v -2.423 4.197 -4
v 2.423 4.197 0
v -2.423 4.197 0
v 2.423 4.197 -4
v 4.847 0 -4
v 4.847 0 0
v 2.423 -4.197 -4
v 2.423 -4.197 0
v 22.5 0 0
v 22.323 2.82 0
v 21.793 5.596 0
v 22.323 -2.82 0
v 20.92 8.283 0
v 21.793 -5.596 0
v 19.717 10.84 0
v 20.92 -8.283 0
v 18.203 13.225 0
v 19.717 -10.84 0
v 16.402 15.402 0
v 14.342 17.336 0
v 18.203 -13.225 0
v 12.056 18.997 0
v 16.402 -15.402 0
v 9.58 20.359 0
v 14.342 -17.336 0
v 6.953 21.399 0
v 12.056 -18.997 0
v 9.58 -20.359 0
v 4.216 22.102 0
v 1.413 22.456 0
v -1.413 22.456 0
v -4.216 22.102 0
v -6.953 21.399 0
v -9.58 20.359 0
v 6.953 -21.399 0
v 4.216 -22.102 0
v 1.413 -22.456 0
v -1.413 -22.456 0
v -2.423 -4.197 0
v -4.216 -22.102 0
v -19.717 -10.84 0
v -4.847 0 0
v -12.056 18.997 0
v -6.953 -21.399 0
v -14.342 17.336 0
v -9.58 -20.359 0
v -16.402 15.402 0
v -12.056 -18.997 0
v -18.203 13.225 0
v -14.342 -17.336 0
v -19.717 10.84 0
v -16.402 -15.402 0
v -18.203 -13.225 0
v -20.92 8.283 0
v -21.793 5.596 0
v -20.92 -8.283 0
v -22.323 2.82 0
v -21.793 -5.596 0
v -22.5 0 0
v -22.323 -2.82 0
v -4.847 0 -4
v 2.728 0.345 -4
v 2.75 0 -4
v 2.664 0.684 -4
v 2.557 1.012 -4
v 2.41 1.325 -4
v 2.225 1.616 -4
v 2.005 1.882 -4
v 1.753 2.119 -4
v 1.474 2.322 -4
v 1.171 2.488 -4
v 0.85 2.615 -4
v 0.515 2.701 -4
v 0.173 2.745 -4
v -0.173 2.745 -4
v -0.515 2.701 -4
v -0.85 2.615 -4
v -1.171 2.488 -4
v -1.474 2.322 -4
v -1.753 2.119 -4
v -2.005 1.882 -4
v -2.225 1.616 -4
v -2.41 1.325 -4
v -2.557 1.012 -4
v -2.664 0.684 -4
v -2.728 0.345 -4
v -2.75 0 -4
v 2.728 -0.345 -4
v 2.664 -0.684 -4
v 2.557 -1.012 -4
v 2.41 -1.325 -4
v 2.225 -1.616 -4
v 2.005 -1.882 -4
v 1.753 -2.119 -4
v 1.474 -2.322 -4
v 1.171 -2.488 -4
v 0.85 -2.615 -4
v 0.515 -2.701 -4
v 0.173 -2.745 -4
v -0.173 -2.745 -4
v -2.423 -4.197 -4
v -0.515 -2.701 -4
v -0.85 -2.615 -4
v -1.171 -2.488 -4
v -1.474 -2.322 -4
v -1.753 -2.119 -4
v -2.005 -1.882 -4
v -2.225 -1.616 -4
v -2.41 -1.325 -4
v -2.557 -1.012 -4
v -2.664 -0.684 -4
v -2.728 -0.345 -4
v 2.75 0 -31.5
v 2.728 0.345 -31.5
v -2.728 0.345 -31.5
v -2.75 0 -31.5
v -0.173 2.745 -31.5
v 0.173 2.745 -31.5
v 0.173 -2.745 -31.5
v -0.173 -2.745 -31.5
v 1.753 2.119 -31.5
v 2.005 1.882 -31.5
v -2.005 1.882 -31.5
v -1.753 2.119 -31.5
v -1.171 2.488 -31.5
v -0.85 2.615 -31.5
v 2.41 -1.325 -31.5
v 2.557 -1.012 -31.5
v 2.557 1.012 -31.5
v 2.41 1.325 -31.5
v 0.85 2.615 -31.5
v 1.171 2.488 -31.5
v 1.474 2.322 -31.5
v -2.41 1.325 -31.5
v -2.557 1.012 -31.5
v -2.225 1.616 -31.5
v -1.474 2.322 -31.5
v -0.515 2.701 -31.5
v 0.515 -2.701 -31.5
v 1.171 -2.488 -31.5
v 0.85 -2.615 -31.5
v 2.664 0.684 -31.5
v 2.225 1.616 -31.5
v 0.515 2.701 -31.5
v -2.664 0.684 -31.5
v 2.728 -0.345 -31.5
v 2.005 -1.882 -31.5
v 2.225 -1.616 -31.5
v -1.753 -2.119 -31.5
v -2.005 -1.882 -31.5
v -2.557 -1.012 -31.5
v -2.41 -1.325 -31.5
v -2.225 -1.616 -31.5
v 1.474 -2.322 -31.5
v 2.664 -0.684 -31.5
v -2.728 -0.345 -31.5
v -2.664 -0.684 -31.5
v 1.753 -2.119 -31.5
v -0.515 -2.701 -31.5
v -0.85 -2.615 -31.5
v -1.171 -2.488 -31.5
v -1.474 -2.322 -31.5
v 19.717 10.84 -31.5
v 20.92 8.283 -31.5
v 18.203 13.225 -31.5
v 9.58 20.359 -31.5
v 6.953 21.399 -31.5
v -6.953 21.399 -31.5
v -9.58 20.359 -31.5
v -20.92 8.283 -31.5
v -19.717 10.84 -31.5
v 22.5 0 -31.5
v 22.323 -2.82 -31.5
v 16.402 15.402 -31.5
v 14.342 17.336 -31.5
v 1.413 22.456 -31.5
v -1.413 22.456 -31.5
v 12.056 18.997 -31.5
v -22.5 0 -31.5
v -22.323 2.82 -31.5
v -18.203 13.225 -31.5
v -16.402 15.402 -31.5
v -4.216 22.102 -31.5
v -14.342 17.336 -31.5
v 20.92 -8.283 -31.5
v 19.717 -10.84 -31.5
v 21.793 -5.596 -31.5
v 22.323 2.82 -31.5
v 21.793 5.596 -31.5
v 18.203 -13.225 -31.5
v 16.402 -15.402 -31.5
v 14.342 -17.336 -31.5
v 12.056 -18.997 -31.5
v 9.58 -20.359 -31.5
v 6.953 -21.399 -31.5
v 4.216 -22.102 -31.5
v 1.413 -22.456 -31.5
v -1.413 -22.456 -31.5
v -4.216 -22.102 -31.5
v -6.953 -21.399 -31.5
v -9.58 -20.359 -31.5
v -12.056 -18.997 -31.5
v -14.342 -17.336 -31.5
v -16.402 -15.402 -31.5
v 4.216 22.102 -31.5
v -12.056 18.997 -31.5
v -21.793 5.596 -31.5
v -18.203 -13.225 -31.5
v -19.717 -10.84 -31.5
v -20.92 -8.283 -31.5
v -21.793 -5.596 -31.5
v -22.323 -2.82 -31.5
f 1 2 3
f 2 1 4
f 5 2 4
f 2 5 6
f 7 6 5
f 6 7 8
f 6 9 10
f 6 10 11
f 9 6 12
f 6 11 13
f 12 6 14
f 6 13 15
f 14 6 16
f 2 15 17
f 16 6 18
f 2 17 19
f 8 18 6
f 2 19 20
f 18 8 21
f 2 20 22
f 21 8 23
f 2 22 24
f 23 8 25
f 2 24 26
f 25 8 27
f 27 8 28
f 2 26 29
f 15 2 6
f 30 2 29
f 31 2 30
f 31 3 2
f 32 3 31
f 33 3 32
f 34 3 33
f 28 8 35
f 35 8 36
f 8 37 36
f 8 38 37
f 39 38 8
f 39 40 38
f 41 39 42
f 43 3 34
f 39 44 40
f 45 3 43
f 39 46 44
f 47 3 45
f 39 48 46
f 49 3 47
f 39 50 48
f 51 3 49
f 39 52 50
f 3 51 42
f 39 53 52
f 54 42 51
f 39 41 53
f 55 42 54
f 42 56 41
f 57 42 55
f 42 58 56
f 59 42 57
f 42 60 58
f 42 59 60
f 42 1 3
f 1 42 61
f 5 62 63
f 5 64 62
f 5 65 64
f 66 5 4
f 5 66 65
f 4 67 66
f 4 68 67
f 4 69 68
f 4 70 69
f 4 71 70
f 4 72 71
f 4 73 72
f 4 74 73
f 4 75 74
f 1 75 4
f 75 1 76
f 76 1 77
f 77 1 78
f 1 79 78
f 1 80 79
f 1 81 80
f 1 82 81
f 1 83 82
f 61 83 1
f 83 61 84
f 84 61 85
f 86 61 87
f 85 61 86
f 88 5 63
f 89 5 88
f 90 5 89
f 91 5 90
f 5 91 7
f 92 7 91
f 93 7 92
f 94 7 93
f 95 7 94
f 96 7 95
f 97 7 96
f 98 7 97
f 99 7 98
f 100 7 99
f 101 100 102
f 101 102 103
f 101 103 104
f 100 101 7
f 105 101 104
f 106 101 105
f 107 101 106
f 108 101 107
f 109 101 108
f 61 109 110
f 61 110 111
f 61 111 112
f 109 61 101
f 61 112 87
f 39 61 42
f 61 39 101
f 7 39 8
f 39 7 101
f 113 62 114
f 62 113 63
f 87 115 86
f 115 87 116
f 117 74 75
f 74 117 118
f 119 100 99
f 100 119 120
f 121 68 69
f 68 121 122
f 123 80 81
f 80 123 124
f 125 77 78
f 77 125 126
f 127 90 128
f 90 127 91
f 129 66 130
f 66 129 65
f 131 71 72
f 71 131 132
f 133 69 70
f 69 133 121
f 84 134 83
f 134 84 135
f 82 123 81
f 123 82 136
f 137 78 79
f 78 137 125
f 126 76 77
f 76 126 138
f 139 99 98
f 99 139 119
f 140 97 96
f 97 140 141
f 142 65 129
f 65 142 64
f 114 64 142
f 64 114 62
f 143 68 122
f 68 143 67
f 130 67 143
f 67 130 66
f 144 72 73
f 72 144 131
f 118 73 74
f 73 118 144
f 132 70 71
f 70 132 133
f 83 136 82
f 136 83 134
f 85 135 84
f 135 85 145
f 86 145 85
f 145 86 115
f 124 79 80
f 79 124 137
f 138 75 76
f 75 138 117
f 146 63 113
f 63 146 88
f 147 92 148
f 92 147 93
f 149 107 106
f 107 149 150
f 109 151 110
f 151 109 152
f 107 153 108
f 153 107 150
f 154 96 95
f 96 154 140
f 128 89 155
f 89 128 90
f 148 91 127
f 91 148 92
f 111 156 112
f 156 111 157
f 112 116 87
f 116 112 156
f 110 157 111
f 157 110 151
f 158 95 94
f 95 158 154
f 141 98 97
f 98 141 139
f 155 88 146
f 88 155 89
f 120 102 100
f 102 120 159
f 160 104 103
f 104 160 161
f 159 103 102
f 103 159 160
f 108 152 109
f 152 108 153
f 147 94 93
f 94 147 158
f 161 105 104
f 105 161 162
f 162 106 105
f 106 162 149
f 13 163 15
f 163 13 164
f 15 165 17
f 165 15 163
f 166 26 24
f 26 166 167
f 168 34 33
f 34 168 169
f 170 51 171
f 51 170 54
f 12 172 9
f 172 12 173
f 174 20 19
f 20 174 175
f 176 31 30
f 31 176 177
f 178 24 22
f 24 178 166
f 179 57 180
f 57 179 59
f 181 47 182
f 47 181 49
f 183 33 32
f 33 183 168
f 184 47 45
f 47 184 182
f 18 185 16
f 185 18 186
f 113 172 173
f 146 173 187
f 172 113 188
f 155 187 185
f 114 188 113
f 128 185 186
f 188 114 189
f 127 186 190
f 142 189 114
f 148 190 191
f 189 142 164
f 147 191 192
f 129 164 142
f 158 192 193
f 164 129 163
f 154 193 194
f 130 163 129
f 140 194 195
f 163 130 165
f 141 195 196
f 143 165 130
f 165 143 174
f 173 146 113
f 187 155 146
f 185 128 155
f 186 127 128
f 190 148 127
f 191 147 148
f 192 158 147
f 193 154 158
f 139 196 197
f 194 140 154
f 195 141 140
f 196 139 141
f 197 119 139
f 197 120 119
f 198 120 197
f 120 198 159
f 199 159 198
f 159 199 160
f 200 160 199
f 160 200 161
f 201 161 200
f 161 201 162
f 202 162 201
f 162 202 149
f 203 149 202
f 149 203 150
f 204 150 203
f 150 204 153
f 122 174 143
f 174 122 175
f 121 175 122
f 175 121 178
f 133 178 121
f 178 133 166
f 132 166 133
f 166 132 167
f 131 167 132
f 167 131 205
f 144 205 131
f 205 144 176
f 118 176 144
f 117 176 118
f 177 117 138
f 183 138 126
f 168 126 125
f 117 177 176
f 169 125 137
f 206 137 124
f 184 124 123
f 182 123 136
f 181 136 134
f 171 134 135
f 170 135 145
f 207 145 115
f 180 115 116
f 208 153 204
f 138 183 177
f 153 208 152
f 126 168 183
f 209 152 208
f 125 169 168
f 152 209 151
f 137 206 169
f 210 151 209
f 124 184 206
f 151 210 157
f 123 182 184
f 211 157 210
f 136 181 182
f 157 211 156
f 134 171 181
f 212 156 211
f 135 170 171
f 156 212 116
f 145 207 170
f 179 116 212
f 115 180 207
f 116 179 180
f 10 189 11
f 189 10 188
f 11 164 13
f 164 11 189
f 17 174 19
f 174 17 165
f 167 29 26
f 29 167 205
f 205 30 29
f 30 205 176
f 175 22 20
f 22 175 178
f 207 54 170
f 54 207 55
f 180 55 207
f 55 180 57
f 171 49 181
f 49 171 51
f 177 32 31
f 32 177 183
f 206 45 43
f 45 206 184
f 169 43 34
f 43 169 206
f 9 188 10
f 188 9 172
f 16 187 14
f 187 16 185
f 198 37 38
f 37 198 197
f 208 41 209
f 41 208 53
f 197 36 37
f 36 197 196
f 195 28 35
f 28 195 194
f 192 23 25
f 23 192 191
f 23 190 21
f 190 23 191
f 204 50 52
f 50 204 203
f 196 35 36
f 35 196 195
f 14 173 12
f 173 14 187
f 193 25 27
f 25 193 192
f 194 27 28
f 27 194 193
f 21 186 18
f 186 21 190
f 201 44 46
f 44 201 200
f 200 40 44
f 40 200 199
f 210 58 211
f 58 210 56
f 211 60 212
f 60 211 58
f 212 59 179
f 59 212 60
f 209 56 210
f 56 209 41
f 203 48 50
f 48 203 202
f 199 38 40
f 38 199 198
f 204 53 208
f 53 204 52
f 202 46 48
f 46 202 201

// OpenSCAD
$fn = 50;

difference() {
	union() {
		translate(v = [0, 0, -31.5]) {
			cylinder(h = 31.5, r = 22.5);
		}
	}
	union() {
		translate(v = [0, 0, 0]) {
			rotate(a = [0, 0, 0]) {
				difference() {
					union() {
						translate(v = [0, 0, -4]) {
							linear_extrude(height = 4) {
								polygon(points = [[4.8468, 0.0], [2.4234000000000004, 4.197451927062417], [-2.423399999999999, 4.197451927062417], [-4.8468, 5.935618106107392e-16], [-2.423400000000002, -4.197451927062416], [2.423399999999997, -4.197451927062419]]);
							}
						}
					}
					union();
				}
			}
		}
		#translate(v = [0, 0, -100.0]) {
			cylinder(h = 200, r = 2.75);
		}
	}
}
